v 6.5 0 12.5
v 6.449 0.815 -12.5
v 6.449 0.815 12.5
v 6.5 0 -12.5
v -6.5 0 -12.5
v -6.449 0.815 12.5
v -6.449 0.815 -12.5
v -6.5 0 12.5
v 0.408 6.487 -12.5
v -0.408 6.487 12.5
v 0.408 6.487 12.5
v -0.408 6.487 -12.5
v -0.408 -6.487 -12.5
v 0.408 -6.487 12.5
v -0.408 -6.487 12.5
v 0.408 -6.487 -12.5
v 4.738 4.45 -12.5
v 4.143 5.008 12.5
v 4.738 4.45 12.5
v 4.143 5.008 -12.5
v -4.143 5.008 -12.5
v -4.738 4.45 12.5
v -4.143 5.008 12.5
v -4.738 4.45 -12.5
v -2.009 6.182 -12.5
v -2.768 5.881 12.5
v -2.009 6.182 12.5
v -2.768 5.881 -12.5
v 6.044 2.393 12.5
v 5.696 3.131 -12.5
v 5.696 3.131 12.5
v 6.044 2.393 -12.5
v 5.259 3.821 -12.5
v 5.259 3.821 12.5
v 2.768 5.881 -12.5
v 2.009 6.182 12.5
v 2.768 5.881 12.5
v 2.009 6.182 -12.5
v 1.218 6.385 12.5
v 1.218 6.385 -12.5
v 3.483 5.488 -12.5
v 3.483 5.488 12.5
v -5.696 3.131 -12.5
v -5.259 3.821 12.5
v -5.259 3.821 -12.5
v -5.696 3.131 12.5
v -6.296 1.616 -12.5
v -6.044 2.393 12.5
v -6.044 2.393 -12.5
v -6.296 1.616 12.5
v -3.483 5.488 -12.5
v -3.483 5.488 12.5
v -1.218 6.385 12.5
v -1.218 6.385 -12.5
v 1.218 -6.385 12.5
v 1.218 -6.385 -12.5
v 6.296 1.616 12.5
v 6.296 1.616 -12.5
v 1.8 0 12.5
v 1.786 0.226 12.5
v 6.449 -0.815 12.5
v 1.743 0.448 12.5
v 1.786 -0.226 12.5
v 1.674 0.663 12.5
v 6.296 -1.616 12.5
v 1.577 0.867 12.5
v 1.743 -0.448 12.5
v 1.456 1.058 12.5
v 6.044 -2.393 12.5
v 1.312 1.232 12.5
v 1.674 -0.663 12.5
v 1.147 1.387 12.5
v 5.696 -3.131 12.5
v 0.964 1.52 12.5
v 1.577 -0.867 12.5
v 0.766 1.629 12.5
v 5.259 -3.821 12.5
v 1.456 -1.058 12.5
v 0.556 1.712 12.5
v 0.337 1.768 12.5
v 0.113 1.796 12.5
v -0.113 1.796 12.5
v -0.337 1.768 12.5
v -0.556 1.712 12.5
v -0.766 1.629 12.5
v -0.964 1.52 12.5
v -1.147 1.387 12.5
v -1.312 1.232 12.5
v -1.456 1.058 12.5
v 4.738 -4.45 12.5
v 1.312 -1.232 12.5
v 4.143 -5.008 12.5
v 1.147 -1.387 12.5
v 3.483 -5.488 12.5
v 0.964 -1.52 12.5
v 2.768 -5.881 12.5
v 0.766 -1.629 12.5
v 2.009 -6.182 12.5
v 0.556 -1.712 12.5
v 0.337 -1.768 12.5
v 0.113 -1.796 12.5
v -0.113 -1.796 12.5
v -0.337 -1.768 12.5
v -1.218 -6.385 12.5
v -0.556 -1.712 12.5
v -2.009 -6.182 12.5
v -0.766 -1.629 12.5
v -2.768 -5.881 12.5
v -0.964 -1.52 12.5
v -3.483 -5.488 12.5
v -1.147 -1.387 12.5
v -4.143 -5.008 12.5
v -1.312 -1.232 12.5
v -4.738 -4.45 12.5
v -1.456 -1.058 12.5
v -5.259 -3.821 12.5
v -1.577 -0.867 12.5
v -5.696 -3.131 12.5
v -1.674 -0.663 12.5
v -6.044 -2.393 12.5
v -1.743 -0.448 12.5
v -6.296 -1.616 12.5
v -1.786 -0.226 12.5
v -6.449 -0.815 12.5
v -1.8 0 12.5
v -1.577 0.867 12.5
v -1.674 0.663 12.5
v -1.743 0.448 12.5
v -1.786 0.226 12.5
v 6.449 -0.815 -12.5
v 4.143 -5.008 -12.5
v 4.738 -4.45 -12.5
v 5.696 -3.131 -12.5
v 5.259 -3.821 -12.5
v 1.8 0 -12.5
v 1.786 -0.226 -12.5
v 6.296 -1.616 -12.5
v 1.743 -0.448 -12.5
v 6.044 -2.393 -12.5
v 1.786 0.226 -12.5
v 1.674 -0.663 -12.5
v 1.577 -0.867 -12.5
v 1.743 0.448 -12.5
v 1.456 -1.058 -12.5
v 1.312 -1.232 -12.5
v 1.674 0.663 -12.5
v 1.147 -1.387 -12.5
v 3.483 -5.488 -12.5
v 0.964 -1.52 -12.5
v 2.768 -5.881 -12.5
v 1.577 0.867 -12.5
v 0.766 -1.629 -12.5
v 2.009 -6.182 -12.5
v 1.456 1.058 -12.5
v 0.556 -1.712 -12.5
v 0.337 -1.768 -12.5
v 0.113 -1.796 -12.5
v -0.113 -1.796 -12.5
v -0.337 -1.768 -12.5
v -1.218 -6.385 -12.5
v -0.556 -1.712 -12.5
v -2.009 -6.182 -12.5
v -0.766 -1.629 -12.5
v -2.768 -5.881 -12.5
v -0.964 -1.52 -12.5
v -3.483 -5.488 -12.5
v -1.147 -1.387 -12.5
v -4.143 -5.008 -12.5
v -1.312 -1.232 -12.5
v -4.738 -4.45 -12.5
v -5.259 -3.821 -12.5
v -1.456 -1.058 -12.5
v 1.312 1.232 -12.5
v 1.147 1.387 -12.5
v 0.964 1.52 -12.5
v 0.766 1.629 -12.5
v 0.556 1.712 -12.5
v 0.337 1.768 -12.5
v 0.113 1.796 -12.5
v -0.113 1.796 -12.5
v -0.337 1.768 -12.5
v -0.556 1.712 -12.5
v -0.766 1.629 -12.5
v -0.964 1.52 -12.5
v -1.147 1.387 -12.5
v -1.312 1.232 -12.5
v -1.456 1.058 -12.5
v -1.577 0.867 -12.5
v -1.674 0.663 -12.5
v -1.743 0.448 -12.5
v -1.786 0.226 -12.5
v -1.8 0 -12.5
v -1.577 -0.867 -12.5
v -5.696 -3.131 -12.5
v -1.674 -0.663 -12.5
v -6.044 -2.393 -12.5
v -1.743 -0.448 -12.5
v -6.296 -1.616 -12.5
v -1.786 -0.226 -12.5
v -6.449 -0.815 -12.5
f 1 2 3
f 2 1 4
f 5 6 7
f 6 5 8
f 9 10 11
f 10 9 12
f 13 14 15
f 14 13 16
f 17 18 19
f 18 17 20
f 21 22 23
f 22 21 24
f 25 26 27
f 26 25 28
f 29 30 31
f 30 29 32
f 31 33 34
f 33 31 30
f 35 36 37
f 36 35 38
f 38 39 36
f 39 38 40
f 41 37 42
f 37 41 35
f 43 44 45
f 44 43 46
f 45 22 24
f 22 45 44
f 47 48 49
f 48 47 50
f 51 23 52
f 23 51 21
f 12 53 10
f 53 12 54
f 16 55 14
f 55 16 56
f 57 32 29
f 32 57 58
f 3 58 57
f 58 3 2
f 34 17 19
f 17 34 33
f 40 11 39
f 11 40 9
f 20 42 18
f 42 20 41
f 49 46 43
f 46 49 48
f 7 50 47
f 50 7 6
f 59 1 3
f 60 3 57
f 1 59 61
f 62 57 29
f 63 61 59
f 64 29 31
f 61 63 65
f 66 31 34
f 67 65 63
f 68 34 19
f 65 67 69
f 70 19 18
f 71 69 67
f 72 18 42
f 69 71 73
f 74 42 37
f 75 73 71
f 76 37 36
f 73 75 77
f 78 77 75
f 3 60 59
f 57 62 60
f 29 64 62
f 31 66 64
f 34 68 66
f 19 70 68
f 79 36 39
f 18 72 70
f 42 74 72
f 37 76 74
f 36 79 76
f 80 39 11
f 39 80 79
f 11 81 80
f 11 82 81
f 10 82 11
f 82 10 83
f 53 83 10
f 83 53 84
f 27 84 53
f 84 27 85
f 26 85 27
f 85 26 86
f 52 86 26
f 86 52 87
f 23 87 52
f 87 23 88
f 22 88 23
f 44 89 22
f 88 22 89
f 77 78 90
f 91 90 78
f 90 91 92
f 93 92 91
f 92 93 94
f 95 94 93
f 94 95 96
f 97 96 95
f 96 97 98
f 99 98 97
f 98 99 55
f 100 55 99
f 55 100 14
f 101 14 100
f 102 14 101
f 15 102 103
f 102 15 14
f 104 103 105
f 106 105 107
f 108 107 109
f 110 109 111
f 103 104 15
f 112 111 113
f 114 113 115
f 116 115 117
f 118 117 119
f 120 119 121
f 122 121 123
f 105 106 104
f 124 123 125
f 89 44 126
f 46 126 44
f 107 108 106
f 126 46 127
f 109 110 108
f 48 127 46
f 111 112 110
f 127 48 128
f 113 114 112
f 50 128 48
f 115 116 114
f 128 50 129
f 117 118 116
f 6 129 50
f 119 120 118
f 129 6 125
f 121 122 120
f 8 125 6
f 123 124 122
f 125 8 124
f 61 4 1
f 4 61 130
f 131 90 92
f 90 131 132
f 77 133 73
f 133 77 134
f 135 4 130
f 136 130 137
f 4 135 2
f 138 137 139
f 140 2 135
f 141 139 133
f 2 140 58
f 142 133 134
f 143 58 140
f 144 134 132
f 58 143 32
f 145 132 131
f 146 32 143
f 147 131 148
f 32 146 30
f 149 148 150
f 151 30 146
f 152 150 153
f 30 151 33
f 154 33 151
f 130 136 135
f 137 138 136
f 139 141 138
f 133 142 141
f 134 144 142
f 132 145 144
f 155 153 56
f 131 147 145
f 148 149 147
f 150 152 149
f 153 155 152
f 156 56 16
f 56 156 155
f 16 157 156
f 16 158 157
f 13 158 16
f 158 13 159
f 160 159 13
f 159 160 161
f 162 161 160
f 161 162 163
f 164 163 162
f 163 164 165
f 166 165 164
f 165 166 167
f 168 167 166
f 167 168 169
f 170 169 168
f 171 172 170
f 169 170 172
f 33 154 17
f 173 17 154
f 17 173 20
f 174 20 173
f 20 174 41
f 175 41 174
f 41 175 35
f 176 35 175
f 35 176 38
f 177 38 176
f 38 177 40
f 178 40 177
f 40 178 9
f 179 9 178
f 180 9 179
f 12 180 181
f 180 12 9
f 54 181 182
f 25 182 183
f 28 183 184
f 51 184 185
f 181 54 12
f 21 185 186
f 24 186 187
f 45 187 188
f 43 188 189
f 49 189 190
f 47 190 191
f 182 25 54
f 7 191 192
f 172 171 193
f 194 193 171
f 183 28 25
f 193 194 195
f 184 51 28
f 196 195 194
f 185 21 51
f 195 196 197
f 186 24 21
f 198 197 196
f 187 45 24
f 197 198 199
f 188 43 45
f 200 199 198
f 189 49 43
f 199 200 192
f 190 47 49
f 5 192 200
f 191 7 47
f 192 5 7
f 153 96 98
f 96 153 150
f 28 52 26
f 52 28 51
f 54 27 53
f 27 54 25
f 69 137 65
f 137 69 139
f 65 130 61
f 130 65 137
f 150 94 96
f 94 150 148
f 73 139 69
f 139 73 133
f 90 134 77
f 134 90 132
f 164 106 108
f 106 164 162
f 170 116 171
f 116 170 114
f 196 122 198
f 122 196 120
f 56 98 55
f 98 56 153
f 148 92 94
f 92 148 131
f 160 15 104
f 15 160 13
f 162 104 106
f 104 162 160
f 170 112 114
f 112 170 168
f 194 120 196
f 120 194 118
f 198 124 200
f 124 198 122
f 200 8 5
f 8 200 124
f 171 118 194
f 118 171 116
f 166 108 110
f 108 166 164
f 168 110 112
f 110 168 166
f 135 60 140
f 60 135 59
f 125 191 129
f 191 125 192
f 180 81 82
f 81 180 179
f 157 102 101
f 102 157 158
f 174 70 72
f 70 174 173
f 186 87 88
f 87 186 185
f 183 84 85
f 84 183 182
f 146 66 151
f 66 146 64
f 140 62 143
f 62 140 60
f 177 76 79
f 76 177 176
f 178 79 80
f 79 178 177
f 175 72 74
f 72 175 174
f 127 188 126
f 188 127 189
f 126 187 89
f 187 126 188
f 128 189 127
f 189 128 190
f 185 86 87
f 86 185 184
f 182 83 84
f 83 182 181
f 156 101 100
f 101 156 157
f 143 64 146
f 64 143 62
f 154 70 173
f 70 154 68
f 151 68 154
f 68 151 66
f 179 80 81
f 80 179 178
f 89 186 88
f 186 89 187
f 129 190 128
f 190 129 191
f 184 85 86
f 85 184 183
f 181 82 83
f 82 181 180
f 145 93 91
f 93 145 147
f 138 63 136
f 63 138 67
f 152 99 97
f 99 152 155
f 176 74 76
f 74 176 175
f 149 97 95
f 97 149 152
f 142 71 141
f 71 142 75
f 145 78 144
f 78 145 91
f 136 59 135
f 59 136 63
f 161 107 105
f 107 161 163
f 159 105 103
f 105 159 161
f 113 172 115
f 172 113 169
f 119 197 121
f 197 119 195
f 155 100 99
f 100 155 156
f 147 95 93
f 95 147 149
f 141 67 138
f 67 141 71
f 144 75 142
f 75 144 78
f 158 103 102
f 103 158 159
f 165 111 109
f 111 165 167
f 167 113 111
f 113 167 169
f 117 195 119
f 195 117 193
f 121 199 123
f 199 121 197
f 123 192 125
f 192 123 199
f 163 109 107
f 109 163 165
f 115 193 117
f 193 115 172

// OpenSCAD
$fn = 50;


difference() {
	union() {
		translate(v = [0, 0, -12.5000000000]) {
			cylinder(h = 25, r = 6.5000000000);
		}
	}
	union() {
		translate(v = [0, 0, -100.0000000000]) {
			cylinder(h = 200, r = 1.8000000000);
		}
	}
}
